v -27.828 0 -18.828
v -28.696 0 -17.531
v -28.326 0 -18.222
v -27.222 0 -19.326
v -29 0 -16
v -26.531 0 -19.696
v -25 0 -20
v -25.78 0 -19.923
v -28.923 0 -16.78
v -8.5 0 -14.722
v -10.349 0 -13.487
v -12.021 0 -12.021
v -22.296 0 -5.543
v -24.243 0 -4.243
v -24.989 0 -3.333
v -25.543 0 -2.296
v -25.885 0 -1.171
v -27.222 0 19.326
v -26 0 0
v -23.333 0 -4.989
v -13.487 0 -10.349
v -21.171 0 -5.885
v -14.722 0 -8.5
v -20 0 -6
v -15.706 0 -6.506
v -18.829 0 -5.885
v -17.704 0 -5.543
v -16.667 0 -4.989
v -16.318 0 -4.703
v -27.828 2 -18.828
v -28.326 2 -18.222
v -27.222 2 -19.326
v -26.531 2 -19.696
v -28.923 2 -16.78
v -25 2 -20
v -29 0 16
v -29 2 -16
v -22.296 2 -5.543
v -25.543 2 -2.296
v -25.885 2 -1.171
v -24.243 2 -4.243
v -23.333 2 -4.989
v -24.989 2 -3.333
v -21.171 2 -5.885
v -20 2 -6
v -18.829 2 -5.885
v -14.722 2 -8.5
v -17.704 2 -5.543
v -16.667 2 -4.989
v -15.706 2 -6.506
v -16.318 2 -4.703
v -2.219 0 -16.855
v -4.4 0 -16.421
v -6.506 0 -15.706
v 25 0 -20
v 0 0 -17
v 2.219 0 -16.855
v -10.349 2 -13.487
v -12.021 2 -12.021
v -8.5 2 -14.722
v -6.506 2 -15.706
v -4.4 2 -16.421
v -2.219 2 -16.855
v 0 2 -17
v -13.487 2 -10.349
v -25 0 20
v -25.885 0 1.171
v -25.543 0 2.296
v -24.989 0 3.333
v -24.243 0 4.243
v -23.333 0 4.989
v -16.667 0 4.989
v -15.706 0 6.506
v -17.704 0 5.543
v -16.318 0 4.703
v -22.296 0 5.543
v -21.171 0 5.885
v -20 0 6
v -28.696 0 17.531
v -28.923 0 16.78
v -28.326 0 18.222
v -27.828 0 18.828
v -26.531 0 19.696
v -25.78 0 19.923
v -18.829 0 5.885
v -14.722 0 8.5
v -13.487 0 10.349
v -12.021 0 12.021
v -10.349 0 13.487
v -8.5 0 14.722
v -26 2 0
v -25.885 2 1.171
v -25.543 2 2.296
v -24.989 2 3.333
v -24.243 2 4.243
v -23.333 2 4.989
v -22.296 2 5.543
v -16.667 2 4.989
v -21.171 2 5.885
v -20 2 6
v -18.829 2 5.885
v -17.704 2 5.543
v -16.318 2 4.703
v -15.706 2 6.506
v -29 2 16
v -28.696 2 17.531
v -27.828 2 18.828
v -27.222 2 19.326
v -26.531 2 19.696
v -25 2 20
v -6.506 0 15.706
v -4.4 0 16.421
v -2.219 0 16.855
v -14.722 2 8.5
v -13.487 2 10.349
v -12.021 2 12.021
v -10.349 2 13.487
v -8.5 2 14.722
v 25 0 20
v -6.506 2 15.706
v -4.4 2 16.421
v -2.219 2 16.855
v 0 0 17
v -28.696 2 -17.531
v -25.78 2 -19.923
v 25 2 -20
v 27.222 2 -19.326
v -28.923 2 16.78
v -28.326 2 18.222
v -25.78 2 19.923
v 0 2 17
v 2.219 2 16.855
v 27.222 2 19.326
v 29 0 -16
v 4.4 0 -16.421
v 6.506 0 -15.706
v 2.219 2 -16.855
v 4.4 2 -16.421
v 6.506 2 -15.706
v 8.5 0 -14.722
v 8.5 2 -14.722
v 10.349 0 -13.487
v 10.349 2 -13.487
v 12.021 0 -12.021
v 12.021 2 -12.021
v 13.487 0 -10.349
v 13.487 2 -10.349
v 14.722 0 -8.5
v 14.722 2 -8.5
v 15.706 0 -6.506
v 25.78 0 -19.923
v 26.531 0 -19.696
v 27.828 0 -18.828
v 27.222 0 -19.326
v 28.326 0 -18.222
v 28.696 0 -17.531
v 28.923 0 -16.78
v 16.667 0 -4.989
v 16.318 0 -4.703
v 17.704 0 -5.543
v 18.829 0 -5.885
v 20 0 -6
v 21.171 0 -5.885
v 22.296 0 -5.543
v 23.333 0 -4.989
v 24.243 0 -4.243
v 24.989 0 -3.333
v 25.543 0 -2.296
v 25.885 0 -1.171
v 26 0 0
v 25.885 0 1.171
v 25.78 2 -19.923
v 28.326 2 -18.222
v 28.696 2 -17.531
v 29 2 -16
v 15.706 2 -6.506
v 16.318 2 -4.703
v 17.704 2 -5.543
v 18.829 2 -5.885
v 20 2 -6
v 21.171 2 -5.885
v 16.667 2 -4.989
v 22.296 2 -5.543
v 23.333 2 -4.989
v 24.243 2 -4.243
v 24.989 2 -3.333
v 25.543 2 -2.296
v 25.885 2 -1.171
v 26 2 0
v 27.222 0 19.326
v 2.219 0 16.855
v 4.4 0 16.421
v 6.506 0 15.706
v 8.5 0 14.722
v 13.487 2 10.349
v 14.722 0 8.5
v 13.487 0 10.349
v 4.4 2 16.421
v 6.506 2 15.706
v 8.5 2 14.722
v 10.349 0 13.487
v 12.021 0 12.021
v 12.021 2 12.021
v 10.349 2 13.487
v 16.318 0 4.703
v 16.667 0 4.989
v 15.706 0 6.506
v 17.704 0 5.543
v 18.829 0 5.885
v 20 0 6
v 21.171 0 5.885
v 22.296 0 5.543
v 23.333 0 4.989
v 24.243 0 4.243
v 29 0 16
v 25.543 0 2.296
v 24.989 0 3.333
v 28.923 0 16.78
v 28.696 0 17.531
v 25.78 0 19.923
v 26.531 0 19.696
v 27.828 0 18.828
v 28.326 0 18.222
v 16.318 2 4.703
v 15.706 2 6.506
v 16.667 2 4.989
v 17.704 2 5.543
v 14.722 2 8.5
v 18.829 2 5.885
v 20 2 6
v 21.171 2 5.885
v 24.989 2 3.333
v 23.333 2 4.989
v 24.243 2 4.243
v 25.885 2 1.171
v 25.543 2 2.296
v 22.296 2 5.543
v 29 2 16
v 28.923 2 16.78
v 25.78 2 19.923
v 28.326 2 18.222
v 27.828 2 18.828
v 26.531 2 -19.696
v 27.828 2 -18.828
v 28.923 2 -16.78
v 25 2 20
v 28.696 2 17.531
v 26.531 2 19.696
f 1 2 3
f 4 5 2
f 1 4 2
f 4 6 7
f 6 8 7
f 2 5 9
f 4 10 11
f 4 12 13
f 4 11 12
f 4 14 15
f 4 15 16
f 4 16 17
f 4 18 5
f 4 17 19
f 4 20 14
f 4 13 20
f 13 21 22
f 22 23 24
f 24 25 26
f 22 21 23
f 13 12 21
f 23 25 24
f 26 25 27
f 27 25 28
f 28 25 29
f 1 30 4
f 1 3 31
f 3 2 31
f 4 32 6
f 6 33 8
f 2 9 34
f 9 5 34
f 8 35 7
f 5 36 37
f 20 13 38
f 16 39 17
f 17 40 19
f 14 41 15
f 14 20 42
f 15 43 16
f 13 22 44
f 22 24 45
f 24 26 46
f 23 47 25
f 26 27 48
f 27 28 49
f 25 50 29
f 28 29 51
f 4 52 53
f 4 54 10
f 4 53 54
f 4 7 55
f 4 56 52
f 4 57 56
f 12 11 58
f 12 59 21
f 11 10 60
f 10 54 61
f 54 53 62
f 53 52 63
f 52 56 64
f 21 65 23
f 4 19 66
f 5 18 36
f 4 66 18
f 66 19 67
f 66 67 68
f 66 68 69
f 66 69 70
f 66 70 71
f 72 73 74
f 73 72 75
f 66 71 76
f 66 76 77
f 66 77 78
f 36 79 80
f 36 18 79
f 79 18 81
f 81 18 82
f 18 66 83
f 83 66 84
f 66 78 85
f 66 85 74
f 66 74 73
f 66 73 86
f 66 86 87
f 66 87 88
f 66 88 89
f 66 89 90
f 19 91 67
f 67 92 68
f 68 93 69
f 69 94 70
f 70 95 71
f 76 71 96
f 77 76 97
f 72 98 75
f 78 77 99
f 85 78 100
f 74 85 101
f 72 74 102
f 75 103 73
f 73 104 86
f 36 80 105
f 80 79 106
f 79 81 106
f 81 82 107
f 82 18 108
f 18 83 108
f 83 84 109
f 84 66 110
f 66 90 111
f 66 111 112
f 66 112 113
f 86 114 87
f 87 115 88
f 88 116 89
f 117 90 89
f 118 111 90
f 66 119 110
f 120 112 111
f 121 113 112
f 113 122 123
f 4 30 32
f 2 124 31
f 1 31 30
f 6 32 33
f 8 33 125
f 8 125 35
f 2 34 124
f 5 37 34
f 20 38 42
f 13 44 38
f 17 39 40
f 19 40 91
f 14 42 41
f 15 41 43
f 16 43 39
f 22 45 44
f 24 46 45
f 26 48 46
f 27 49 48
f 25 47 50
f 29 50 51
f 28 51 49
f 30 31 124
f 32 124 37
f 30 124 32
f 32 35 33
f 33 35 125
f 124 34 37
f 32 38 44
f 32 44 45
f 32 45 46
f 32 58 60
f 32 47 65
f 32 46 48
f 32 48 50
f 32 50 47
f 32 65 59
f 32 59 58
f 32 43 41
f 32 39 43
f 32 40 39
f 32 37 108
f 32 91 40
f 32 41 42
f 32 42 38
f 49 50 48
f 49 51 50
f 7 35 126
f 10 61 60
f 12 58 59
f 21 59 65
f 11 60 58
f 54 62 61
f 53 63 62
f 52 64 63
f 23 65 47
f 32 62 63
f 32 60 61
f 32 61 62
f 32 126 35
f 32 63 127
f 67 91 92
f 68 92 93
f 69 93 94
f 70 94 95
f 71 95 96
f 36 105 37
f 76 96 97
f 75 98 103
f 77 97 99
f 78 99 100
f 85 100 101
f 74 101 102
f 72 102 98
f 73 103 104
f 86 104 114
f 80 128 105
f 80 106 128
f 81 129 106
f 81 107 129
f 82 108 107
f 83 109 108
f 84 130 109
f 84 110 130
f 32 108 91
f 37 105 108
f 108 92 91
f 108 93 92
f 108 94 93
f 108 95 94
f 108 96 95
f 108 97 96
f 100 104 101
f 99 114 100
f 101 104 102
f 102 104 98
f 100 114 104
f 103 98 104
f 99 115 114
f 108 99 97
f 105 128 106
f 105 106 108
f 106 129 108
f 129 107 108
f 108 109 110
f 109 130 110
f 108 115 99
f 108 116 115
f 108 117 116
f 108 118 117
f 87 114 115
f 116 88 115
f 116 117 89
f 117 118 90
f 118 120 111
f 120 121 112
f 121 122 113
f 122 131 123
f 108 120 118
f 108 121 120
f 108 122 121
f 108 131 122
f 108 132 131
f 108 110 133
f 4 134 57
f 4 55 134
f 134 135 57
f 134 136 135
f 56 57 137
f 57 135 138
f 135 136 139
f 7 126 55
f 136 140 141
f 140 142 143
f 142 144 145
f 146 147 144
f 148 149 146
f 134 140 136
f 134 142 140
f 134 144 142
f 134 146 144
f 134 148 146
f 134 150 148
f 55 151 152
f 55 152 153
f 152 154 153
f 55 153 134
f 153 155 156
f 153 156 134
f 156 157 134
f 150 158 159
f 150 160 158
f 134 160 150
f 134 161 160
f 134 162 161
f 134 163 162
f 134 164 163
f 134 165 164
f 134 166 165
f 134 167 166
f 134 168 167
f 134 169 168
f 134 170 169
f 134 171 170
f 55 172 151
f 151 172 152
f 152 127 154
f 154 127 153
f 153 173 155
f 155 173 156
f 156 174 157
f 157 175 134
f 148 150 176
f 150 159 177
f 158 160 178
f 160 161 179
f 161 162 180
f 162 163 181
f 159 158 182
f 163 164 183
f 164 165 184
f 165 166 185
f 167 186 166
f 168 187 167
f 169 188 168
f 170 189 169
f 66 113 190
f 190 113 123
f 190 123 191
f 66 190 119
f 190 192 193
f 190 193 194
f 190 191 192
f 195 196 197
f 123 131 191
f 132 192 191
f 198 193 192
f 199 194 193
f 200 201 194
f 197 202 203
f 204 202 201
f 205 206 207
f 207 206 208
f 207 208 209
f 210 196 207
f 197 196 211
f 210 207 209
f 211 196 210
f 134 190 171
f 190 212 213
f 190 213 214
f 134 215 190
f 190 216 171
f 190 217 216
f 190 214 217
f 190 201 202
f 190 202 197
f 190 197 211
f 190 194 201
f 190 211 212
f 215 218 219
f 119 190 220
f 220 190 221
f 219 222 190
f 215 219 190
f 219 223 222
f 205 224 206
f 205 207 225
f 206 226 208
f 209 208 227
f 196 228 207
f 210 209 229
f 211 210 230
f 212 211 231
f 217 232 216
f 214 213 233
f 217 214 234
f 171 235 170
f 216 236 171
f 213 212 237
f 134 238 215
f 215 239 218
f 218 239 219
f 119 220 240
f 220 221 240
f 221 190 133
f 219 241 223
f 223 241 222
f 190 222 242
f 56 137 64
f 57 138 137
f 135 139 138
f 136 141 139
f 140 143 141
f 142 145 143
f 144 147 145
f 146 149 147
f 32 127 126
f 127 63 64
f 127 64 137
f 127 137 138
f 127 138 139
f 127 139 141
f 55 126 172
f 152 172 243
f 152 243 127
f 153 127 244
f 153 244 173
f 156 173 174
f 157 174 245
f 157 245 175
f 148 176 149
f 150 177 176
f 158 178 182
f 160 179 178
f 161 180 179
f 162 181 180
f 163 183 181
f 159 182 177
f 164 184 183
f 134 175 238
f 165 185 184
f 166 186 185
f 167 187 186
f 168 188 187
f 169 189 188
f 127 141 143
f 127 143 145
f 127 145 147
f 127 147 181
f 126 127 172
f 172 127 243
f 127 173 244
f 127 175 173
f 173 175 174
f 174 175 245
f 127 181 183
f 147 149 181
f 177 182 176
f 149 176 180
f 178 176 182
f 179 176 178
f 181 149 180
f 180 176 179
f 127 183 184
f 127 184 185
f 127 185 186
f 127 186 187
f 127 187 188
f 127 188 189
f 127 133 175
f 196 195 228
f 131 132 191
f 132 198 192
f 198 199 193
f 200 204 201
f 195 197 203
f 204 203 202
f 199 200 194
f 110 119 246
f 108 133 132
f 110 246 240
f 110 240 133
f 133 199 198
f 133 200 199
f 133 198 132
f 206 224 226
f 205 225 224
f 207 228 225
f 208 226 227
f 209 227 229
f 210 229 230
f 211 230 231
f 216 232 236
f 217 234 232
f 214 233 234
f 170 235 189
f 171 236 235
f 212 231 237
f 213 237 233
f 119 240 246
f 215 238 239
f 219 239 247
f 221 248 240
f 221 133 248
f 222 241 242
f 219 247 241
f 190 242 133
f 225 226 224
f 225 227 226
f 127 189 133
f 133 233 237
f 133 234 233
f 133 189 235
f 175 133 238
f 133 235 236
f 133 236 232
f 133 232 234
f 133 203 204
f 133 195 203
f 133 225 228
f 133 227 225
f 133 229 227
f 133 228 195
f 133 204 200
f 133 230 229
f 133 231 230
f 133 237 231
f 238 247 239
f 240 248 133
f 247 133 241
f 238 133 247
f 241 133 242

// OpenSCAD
// =============================================================================
// OpenMotorBridge - Radar 2.0 Vibration Isolation Elastomer Pad
// =============================================================================
// File: hardware/cad/scad/02_pod_base/radar_vibration_damping_pad.scad
// Description: Laser-cut / die-cut EPDM (Shore 60A/70A) or 3D-printed TPU 85A
//              vibration damping pad sandwiched between the heavy-duty
//              swivel cradle (radar_swivel_tilt_cradle.scad) and the
//              sealed Radar 2.0 housing (radar_mr20_housing.scad).
//
// Function:
// 1. Decouples high-frequency motorcycle engine harmonics (50 - 250 Hz,
//    Harley V2 Milwaukee-Eight, Boxer, single-cylinder) from transmitting into
//    the Wheeltec MR20 77-GHz mmWave radar module.
// 2. Eliminates Doppler phase noise and FFT target velocity spreading.
// 3. Dual-layer architecture: Rigid Hirth rosette maintains precision pitch
//    angle (+/- 2 deg) against wind/drag; EPDM pad dampens micro-vibrations.
// =============================================================================

include <../00_common/parameters.scad>;

PAD_W           = 58.0;  // Total pad width in X (mm, matches cradle plate)
PAD_H           = 40.0;  // Total pad height in Z (mm, matches cradle plate)
PAD_THICK       = 2.0;   // Damping pad thickness in Y (mm)
PAD_CORNER_R    = 4.0;   // Corner fillet radius (mm)

REAR_M4_PITCH   = 40.0;  // Symmetrical spacing between M4 mounting screws (mm)
M4_CUTOUT_R     = 6.0;   // Clearance radius around M4 boss / bushing (mm)
GARMIN_CLEAR_R  = 17.0;  // Central clearance radius for Ø 34 mm Garmin well (mm)

module radar_vibration_damping_pad() {
    difference() {
        // 1. Solid Elastomer Base Plate in X-Z plane (thickness along +Y)
        hull() {
            for (sx = [-PAD_W/2 + PAD_CORNER_R, PAD_W/2 - PAD_CORNER_R]) {
                for (sz = [-PAD_H/2 + PAD_CORNER_R, PAD_H/2 - PAD_CORNER_R]) {
                    translate([sx, 0, sz])
                        rotate([-90, 0, 0])
                            cylinder(r=PAD_CORNER_R, h=PAD_THICK, center=false, $fn=32);
                }
            }
        }

        // 2. Central Garmin Quarter-Turn Bayonet Clearance Cutout
        translate([0, -0.5, 0])
            rotate([-90, 0, 0])
                cylinder(r=GARMIN_CLEAR_R, h=PAD_THICK + 1.0, center=false, $fn=48);

        // 3. Symmetrical M4 Boss Clearance Cutouts (Pitch: 40.0 mm)
        for (dx = [-REAR_M4_PITCH/2, REAR_M4_PITCH/2]) {
            translate([dx, -0.5, 0])
                rotate([-90, 0, 0])
                    cylinder(r=M4_CUTOUT_R, h=PAD_THICK + 1.0, center=false, $fn=32);
        }
    }
}

// Standalone render
color([0.15, 0.15, 0.16, 0.95])
    radar_vibration_damping_pad();
